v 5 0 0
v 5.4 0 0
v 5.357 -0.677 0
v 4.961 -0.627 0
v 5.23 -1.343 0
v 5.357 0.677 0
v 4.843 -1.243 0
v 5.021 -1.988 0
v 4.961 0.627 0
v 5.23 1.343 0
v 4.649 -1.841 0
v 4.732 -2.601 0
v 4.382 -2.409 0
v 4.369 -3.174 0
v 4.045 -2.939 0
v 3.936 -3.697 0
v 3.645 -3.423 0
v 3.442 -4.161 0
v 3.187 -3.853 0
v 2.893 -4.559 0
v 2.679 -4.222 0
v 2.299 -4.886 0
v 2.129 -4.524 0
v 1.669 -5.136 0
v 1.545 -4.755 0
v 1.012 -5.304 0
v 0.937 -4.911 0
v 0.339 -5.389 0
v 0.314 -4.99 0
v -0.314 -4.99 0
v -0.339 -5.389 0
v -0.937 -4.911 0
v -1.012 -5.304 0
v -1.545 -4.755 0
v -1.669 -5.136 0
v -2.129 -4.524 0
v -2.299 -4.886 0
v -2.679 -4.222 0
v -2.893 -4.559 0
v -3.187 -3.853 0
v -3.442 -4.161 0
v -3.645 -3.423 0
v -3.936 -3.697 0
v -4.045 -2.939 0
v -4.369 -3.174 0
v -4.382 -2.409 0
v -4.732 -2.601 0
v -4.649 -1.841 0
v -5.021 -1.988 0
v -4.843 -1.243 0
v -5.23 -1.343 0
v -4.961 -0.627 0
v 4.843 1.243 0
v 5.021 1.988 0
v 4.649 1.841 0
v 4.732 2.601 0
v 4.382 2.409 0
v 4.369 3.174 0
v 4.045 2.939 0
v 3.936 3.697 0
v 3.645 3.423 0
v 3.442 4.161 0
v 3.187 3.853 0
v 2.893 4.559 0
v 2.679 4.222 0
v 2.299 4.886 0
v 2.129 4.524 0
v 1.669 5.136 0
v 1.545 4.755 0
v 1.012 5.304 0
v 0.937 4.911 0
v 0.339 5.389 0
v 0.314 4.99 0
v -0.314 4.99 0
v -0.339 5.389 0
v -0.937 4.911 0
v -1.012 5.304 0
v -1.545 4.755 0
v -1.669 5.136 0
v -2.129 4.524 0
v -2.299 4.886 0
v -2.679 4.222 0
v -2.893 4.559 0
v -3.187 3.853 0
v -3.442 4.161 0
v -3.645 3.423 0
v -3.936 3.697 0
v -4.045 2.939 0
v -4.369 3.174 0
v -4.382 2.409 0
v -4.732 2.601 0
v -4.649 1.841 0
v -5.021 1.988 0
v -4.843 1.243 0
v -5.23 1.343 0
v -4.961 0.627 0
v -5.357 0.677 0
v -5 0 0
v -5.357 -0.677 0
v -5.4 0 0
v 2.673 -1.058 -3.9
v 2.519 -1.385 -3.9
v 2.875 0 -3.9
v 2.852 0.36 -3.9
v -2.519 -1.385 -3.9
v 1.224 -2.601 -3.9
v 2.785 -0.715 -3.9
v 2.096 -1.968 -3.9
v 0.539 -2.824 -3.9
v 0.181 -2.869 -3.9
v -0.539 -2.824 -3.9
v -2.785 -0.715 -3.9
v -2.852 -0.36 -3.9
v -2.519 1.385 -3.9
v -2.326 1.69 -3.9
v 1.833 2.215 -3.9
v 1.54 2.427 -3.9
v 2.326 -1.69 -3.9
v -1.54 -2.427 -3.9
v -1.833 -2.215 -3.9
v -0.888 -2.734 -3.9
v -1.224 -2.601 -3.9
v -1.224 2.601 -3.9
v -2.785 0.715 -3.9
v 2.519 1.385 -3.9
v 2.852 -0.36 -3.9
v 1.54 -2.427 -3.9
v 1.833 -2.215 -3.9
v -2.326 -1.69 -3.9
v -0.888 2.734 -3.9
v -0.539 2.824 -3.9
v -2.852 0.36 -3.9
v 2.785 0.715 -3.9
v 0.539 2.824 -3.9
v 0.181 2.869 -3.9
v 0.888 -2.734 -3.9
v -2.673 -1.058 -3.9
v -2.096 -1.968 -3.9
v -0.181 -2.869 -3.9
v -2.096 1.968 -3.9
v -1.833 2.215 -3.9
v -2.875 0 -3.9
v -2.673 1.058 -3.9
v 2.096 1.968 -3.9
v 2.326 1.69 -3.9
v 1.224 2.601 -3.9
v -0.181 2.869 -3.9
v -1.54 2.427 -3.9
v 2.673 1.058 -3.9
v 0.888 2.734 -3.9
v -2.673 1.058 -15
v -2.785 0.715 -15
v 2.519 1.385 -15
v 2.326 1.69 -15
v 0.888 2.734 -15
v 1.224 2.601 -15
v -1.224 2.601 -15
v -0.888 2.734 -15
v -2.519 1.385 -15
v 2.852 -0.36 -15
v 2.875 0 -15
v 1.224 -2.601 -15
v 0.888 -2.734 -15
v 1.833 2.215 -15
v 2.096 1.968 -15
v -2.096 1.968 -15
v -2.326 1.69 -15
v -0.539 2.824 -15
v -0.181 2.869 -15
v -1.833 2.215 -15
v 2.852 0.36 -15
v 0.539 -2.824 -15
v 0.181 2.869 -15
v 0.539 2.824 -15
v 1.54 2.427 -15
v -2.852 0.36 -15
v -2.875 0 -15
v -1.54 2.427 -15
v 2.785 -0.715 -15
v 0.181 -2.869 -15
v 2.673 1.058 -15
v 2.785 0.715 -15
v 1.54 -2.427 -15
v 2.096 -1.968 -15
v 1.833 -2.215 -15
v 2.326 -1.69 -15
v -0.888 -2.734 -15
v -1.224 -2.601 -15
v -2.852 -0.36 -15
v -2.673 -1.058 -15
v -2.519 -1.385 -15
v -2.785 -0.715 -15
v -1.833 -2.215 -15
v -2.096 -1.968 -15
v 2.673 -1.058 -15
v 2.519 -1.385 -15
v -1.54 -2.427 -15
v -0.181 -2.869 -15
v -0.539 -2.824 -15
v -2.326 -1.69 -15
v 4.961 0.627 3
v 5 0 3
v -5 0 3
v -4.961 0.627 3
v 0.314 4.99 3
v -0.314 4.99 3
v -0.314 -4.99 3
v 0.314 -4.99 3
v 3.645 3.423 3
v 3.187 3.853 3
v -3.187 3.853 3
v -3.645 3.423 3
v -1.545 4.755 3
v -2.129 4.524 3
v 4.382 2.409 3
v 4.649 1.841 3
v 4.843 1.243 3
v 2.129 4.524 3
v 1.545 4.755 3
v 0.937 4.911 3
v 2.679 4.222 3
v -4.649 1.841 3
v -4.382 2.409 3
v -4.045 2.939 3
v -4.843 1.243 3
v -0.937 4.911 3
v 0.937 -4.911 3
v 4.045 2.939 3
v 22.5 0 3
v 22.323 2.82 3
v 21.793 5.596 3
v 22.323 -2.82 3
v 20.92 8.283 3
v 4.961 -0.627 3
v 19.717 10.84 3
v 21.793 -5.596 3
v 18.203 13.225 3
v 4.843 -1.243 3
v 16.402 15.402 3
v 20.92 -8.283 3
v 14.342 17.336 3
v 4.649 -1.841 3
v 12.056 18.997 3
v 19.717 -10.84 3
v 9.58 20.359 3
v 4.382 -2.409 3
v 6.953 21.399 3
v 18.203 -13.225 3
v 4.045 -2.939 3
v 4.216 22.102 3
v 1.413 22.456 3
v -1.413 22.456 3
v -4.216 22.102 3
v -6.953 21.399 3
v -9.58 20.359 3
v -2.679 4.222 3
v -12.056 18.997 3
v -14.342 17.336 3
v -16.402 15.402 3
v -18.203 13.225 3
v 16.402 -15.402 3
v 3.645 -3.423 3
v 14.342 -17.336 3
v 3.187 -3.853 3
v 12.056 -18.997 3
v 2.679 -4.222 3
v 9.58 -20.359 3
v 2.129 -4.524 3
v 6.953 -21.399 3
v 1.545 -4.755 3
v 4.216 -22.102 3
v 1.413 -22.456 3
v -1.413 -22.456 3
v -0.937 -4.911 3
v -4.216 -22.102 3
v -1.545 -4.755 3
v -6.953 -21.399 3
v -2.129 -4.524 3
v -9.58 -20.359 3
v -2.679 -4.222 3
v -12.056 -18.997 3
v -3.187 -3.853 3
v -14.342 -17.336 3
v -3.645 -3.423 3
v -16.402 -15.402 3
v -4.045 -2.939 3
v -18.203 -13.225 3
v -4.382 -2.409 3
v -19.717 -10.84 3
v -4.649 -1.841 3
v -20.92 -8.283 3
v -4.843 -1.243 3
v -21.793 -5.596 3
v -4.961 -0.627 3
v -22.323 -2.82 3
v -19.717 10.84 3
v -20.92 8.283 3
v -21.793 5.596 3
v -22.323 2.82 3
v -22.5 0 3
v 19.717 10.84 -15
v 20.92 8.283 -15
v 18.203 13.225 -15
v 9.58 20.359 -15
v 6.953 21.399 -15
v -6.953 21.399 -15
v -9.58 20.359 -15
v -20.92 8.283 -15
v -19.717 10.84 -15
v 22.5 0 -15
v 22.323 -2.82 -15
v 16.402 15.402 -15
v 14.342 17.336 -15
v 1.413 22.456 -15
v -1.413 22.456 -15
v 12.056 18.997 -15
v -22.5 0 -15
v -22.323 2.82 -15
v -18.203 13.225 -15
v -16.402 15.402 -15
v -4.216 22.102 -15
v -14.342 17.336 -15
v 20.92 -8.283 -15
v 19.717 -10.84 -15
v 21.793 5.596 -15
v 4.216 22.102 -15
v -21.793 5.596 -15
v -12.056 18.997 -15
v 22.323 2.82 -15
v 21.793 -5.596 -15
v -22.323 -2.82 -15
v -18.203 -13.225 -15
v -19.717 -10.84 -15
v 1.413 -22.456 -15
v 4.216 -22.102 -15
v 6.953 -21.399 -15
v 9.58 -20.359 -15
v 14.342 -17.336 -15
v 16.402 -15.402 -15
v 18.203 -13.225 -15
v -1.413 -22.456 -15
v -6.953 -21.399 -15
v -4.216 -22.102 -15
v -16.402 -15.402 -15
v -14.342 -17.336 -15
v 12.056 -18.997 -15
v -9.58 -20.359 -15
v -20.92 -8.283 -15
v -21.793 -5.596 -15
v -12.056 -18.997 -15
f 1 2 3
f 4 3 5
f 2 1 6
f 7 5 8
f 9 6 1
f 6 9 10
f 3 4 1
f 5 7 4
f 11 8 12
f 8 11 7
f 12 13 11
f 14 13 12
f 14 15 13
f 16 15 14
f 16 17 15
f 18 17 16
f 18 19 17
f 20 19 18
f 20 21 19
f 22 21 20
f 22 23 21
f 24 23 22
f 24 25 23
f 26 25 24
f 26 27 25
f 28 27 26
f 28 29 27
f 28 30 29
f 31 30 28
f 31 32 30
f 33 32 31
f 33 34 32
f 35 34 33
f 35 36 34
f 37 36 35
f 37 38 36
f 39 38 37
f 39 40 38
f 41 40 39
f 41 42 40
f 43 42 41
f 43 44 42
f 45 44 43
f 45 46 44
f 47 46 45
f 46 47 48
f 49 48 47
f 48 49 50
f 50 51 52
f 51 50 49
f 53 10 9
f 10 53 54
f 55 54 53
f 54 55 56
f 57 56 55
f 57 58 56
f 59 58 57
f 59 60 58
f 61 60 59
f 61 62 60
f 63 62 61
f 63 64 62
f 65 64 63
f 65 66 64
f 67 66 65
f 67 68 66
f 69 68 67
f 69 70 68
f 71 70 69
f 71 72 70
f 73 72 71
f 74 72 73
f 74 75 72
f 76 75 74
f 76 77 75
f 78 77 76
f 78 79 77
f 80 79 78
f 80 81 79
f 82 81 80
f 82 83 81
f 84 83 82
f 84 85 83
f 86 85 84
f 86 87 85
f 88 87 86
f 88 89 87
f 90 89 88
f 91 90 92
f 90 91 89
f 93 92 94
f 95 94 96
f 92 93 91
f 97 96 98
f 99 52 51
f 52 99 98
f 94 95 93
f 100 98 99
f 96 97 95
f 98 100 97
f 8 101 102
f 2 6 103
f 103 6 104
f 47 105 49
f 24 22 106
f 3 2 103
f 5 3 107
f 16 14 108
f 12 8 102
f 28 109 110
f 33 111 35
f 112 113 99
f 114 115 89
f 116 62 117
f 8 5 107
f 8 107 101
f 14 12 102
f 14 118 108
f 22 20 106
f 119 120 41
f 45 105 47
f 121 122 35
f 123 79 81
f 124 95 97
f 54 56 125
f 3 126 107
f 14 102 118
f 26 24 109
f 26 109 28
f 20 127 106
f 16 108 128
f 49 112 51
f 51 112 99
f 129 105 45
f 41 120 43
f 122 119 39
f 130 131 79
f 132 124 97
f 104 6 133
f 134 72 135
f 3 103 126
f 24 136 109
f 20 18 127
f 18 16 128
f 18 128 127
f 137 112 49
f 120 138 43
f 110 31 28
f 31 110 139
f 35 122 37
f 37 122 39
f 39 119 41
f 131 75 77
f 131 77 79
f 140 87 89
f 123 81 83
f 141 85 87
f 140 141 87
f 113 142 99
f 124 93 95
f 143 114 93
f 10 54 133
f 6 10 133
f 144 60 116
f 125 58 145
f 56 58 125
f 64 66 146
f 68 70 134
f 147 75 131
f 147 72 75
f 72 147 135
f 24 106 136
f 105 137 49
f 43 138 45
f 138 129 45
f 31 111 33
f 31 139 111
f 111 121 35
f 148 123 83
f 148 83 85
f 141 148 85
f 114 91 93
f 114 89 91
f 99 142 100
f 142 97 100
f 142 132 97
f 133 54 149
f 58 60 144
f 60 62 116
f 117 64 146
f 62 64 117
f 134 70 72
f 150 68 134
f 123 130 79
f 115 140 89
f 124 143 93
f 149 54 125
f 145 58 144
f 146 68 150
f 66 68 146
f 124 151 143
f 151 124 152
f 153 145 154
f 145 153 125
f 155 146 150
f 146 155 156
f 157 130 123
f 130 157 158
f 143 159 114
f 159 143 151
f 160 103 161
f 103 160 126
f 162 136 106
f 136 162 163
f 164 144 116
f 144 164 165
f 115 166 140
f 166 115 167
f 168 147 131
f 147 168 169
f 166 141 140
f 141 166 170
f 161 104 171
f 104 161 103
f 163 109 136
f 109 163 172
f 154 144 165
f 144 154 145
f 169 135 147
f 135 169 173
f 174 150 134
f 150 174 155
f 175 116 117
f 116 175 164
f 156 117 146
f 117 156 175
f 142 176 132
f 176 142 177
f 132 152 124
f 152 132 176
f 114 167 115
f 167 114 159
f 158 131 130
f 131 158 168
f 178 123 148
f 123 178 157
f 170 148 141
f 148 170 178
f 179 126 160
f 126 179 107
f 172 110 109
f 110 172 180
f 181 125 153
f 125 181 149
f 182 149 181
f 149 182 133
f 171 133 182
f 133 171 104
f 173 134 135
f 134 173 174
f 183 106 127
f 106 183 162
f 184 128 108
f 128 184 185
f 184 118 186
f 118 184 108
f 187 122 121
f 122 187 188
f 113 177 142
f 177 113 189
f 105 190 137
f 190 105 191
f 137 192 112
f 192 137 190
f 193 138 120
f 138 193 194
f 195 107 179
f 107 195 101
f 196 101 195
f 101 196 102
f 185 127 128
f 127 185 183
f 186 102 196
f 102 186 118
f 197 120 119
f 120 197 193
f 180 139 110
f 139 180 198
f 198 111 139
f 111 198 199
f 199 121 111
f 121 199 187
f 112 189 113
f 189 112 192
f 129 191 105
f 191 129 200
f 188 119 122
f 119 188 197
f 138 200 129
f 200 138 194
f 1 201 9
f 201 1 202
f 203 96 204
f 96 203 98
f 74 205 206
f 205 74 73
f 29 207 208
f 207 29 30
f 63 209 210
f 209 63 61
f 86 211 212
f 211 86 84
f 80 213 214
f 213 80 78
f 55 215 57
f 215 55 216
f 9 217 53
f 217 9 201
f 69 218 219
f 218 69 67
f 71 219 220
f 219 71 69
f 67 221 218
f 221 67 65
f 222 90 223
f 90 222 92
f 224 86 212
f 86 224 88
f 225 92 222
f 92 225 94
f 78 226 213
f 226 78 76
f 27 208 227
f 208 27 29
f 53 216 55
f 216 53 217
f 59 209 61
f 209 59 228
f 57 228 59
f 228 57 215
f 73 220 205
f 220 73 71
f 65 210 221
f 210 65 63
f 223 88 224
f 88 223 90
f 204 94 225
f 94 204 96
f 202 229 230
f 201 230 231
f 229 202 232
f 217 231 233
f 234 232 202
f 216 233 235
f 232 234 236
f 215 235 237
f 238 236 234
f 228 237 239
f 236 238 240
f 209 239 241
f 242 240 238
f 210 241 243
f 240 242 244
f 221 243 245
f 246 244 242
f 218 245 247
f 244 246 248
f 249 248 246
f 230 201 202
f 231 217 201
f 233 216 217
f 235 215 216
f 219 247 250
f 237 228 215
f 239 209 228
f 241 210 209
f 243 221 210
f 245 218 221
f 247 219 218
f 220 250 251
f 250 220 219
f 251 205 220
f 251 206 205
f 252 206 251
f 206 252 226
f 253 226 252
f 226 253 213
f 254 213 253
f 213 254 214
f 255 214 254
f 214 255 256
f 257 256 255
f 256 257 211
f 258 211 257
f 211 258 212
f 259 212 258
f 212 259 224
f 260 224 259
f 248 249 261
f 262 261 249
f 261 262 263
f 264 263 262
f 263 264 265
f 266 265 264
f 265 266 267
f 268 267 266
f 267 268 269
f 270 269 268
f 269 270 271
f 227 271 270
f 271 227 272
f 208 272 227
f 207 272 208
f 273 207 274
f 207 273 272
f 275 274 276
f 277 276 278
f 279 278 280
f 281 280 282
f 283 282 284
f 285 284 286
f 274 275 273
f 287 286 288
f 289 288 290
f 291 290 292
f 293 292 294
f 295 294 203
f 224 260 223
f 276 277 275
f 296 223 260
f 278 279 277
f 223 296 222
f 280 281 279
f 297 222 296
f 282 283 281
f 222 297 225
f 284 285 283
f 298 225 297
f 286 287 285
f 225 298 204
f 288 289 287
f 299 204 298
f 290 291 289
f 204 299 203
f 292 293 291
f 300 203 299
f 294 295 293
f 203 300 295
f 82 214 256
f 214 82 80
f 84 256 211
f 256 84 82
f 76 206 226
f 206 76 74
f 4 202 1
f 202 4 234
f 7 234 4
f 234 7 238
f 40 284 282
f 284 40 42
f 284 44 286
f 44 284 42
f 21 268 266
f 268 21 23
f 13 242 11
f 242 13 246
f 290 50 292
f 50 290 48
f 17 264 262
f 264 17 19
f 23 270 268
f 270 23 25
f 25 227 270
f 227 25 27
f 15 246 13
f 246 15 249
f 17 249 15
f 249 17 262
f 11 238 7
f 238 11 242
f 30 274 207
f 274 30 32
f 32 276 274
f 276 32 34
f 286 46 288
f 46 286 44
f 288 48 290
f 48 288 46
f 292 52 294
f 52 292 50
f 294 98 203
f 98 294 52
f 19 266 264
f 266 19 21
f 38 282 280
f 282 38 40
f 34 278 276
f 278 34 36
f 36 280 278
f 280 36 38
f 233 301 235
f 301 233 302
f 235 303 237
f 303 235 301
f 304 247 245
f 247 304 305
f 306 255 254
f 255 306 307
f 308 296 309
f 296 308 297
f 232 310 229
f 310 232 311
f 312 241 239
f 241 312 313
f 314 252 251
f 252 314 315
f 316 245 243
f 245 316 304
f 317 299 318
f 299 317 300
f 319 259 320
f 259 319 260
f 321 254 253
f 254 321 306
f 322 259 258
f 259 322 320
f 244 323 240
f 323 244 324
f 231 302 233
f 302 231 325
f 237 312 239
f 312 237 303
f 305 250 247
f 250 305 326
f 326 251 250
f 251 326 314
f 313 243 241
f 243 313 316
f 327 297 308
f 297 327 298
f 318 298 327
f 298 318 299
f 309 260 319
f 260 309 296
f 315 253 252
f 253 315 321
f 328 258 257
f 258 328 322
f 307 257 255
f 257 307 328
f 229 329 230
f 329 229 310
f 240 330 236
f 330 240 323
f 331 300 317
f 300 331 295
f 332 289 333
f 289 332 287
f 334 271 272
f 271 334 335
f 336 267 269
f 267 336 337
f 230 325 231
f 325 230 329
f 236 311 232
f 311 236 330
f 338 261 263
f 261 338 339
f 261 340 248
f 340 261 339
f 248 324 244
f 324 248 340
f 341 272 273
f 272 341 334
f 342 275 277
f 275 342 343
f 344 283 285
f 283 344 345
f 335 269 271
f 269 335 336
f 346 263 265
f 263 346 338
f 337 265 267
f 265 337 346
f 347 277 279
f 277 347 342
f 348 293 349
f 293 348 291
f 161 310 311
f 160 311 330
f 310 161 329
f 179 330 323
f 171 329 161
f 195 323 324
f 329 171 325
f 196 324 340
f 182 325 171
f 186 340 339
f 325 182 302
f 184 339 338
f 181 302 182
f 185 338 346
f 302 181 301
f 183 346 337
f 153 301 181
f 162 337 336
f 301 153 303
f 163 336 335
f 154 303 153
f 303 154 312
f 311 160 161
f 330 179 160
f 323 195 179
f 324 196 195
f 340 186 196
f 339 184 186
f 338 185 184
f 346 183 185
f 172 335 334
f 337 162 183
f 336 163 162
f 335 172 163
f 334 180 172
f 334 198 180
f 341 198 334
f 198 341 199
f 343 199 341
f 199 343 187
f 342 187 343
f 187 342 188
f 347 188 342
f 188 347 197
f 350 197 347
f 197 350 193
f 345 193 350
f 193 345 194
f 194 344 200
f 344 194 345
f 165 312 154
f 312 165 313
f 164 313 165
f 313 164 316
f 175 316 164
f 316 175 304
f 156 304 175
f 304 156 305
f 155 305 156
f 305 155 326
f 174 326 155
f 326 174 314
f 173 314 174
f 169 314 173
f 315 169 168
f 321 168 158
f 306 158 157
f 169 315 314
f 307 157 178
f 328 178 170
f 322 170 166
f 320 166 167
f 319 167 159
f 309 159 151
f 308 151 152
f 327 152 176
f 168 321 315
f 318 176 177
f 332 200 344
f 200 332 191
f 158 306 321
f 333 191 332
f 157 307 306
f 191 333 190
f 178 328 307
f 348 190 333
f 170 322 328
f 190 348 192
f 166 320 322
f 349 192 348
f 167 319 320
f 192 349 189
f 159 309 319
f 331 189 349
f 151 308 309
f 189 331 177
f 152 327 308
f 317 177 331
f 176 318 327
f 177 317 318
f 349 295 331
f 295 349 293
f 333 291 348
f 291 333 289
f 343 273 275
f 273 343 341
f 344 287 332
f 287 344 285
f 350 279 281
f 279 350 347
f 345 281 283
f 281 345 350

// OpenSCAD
$fn = 50;


difference() {
	union() {
		translate(v = [0, 0, -15.0000000000]) {
			cylinder(h = 18, r = 22.5000000000);
		}
	}
	union() {
		translate(v = [0, 0, 0]) {
			rotate(a = [0, 0, 0]) {
				difference() {
					union() {
						translate(v = [0, 0, -18.0000000000]) {
							cylinder(h = 18, r = 2.6000000000);
						}
						translate(v = [0, 0, -3.9000000000]) {
							cylinder(h = 3.9000000000, r1 = 2.8750000000, r2 = 5.4000000000);
						}
						translate(v = [0, 0, -18.0000000000]) {
							cylinder(h = 18, r = 2.8750000000);
						}
						translate(v = [0, 0, -18.0000000000]) {
							cylinder(h = 18, r = 2.6000000000);
						}
					}
					union();
				}
			}
		}
		#cylinder(h = 3, r = 5.0000000000);
	}
}
